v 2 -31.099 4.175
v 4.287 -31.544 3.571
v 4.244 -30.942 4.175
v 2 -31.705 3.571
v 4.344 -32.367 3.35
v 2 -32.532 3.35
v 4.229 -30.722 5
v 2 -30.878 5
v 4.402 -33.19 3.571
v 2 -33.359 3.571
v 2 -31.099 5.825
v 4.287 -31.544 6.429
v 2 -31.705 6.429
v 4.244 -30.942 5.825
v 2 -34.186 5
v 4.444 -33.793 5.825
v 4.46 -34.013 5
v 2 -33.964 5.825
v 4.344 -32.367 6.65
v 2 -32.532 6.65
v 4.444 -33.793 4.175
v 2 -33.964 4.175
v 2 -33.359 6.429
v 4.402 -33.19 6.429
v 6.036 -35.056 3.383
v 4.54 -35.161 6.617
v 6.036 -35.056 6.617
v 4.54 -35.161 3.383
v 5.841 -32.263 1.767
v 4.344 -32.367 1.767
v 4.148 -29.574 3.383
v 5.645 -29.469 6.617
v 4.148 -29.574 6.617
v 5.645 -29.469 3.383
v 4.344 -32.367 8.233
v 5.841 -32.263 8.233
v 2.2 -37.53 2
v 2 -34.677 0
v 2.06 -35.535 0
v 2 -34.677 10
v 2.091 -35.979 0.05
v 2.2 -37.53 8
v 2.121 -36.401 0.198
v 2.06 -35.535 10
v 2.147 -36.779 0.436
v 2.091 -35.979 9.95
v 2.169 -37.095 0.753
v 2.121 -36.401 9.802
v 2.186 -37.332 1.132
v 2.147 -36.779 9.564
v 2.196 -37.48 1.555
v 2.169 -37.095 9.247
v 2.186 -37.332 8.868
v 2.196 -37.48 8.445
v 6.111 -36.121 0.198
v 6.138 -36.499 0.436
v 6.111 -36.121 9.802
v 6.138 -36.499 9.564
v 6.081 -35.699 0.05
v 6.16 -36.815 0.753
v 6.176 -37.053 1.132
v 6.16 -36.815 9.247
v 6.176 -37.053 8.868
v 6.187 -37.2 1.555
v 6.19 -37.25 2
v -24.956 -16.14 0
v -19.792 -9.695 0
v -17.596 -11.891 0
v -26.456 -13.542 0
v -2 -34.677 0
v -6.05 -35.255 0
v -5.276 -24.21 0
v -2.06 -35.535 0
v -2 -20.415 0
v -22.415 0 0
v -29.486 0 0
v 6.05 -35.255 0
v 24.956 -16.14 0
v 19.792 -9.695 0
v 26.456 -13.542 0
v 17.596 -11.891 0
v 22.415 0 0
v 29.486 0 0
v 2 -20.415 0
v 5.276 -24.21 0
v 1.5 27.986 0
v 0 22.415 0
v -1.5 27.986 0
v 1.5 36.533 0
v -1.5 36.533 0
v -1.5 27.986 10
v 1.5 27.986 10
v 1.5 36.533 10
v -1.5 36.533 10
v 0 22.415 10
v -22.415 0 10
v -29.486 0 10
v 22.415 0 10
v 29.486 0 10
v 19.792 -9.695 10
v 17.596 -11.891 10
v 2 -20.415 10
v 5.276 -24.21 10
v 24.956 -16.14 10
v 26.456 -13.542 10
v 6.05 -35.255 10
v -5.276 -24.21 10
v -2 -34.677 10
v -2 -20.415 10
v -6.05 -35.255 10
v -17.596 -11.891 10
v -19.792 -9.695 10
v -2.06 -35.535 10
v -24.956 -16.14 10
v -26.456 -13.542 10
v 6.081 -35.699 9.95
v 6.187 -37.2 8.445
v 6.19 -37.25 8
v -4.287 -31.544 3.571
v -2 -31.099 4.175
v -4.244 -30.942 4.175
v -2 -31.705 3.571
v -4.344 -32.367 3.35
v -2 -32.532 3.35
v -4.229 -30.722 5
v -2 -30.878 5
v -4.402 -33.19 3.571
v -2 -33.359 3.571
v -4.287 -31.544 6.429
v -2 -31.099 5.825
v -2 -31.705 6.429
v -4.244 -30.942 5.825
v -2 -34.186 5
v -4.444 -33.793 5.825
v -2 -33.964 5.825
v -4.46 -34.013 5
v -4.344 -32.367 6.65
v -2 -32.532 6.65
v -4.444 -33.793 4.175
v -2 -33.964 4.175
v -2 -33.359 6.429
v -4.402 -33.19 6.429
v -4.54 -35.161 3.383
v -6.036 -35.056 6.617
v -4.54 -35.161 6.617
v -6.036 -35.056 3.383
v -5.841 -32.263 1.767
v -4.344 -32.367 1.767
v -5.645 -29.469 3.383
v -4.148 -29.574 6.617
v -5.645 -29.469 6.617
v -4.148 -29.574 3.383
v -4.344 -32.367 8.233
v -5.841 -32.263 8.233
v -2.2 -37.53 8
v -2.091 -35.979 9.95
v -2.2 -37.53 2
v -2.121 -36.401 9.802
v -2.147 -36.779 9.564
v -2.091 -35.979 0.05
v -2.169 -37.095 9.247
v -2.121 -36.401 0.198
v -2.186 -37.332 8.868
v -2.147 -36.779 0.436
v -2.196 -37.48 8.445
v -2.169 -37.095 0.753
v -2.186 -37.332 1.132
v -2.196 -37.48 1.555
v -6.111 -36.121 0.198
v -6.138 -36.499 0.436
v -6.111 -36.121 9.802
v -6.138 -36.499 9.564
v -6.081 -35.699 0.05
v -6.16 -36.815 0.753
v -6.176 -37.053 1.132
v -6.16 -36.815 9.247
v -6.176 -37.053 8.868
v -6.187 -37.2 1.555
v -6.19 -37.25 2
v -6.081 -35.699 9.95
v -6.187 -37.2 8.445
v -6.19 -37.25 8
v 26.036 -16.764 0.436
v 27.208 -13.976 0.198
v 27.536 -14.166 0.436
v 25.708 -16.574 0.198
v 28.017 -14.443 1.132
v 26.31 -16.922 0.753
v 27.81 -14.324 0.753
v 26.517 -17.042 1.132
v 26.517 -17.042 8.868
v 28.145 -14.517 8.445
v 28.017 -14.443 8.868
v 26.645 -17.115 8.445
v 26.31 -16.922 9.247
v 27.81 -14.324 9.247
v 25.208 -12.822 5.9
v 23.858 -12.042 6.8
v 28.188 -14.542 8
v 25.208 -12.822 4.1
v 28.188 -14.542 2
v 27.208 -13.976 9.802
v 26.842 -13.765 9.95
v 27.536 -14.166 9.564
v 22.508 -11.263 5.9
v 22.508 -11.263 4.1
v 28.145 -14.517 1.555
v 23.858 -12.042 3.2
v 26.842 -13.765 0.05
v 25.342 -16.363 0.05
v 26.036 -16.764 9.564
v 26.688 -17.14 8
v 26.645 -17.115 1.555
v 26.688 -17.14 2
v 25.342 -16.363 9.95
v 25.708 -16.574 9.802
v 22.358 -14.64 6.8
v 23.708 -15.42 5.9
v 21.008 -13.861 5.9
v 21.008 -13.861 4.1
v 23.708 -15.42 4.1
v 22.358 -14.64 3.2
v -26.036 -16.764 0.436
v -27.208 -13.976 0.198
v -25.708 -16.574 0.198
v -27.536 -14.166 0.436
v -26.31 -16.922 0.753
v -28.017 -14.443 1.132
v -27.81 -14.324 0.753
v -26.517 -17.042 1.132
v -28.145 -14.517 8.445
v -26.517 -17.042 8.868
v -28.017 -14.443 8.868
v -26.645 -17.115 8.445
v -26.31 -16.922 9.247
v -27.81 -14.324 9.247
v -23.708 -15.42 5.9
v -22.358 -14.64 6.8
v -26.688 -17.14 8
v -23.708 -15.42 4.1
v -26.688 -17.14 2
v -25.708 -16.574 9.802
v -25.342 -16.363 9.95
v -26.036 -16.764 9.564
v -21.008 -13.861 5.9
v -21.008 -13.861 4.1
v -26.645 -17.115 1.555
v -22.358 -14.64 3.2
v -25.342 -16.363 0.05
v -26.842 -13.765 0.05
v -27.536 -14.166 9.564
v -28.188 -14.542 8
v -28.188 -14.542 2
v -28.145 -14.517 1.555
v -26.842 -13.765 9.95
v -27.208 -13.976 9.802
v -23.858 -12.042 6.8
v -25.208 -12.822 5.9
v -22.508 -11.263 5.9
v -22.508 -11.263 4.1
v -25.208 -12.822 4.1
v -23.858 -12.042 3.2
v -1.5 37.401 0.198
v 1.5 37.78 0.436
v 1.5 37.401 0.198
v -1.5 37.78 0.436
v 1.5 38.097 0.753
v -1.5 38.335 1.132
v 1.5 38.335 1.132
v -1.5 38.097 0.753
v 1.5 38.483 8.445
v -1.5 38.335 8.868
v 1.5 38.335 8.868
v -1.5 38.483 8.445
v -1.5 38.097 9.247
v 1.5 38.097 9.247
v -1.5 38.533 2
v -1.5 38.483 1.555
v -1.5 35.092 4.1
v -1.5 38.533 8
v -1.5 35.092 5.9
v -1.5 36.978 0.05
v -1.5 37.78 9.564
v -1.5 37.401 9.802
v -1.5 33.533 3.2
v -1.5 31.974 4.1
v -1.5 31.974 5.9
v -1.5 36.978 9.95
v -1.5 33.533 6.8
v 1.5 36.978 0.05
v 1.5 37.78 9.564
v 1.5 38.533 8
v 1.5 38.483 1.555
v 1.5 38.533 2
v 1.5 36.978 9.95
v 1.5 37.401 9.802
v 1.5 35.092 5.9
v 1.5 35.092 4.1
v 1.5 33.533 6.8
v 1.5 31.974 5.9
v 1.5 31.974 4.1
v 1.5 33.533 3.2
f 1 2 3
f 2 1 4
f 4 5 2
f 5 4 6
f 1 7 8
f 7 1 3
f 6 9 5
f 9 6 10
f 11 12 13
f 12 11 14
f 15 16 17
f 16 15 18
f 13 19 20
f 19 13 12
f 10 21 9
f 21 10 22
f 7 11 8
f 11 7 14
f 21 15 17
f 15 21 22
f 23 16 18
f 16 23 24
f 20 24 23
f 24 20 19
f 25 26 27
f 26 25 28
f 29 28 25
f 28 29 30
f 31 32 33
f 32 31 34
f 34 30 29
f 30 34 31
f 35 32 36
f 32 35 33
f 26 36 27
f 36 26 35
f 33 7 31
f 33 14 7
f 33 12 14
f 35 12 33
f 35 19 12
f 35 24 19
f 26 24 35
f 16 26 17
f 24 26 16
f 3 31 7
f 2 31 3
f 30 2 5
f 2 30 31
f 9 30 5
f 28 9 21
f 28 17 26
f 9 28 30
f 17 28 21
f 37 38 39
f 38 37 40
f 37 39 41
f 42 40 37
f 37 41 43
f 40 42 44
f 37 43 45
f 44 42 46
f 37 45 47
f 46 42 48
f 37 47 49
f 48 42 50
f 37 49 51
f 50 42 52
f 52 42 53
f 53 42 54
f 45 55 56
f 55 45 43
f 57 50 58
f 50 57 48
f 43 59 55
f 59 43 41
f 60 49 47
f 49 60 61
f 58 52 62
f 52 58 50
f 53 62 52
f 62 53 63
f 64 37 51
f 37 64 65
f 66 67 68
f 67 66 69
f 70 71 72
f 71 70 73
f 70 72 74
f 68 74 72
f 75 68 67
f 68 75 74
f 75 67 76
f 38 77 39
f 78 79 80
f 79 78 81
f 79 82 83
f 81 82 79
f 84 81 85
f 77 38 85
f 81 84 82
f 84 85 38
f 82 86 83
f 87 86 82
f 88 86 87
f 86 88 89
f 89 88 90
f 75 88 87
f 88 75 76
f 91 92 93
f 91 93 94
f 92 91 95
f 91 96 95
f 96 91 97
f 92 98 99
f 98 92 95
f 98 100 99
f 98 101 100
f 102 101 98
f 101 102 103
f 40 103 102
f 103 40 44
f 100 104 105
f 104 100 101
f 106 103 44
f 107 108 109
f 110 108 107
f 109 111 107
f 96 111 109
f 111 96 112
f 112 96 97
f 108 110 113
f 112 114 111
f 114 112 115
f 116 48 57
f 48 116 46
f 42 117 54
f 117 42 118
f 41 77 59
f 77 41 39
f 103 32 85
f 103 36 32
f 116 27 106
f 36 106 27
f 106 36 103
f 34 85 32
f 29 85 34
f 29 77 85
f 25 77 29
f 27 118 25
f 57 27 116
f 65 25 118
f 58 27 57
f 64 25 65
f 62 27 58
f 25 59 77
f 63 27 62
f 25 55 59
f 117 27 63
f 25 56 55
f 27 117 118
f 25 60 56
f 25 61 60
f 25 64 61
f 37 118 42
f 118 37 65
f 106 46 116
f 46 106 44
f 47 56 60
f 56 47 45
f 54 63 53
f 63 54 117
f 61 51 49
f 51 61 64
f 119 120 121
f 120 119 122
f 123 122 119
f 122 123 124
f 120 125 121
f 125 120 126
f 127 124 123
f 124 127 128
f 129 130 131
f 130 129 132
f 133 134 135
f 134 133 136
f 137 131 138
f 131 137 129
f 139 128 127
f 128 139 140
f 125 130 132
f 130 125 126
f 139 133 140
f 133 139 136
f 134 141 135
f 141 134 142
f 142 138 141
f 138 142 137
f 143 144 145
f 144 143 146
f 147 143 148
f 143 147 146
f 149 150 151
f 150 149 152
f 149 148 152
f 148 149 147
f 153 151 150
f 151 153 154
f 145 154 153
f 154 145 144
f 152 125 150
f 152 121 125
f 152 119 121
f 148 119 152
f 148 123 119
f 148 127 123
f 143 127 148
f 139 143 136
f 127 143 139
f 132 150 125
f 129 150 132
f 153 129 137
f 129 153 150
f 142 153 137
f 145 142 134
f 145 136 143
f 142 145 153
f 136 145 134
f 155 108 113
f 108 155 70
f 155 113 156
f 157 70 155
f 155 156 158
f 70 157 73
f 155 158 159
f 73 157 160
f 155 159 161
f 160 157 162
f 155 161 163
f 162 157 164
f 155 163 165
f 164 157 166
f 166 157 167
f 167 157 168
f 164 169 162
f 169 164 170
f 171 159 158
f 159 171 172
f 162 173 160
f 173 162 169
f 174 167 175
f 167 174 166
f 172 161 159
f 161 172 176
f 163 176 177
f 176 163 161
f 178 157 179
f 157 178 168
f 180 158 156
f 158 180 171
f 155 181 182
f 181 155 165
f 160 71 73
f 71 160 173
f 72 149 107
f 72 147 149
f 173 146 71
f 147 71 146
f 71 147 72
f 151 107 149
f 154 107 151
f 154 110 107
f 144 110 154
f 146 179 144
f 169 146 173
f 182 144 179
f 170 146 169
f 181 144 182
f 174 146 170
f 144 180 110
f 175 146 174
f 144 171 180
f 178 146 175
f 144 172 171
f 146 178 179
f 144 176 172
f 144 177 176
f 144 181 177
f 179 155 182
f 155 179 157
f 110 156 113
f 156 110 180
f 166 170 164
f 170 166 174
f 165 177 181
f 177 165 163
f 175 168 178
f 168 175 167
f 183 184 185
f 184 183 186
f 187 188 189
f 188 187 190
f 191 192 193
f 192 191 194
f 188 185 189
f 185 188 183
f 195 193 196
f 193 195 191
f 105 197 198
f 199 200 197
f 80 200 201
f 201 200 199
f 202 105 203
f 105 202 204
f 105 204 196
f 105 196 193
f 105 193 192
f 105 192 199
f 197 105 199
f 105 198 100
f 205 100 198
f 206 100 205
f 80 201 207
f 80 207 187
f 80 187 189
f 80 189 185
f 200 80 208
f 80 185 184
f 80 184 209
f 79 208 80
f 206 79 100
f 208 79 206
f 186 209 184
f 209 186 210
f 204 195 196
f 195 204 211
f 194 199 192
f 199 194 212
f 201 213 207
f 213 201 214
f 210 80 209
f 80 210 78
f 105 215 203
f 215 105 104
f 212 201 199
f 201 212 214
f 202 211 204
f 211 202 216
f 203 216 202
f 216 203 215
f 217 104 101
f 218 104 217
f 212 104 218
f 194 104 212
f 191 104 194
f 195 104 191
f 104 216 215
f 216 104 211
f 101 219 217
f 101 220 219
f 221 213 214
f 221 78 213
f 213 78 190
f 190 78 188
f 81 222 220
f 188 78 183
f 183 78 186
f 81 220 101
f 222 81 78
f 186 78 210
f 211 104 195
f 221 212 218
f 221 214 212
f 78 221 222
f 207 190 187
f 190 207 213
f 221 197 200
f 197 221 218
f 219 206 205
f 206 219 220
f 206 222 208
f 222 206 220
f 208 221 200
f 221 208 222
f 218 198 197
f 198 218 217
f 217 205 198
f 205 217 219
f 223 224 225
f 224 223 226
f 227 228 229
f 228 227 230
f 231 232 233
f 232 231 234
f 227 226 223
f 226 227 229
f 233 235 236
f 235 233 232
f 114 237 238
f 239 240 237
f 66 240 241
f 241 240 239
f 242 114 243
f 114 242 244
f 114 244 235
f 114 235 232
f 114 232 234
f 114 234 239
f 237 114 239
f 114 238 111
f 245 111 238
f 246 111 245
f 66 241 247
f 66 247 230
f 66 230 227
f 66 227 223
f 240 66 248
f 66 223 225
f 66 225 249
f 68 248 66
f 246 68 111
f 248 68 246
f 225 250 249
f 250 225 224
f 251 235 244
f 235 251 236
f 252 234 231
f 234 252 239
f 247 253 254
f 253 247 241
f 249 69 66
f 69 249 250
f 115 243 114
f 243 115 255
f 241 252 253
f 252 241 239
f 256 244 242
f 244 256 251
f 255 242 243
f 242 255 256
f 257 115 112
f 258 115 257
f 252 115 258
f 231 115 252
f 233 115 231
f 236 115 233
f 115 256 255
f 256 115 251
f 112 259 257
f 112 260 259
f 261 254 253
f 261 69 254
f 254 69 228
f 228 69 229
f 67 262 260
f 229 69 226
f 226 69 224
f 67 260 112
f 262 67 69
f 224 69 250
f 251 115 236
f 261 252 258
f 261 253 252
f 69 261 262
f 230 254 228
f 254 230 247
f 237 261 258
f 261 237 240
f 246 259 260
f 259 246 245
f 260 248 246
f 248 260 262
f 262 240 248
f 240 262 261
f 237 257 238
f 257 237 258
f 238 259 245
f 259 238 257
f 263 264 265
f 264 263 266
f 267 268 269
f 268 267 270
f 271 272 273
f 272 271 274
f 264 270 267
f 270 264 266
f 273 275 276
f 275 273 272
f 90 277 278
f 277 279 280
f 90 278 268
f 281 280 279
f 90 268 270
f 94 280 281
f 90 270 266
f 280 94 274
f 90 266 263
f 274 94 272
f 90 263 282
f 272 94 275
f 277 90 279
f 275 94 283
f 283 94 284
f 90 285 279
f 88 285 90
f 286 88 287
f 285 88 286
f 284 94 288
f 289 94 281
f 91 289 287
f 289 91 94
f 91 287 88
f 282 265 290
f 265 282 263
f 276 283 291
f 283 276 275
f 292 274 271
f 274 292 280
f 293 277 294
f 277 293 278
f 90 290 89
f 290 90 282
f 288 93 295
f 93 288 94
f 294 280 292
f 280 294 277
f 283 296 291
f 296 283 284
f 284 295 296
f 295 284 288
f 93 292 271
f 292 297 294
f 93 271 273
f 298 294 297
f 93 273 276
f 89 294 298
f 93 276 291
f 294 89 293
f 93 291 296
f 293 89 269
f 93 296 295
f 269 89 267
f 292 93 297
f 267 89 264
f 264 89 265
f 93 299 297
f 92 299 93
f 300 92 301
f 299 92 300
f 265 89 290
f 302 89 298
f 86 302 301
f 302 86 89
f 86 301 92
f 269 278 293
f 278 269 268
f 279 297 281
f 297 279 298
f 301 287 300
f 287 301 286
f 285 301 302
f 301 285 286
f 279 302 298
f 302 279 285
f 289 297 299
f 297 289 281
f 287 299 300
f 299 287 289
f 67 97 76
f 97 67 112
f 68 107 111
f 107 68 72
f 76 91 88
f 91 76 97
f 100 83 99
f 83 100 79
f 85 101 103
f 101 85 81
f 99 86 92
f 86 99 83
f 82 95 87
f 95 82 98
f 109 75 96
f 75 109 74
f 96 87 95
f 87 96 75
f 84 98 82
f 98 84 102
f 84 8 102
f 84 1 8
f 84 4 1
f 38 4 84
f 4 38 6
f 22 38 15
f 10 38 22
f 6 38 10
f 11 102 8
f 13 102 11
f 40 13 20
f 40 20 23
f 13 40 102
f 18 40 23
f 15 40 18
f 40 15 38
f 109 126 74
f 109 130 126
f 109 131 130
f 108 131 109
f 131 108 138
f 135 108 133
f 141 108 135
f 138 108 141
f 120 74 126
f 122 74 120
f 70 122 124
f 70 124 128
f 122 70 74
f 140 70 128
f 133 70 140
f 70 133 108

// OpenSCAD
// file: lib/sweep.scad
// sweep.scad
//
// This code is copied from
// https://github.com/openscad/list-comprehension-demos
// and
// https://github.com/openscad/scad-utils
// to make hangprinter repo self-contained
// It was included in order to make the worm drive parametric
// In future OpenSCAD (or other script CAD programs)
// worm drives should be will be more easily constructed without
// this user space defined sweep operation.
// See OpenSCAD discussion at:
// https://github.com/openscad/openscad/issues/114

// Look into files
// lists.scad
// X transformations.scad
// linalg.scad
// se3.scad
// so3.scad


// Include modules and fcts:

/// linalg.scad
function vec3(p) = len(p) < 3 ? concat(p,0) : p;
function vec4(p) = let (v3=vec3(p)) len(v3) < 4 ? concat(v3,1) : v3;
function take3(v) = [v[0],v[1],v[2]];
function tail3(v) = [v[3],v[4],v[5]];
function construct_Rt(R,t) = [concat(R[0],t[0]),concat(R[1],t[1]),concat(R[2],t[2]),[0,0,0,1]];

/// so3.scad

function se3_exp_2(t,w) = se3_exp_2_0(t,w,w*w);
function se3_exp_2_0(t,w,theta_sq) =
se3_exp_23(
	so3_exp_2(theta_sq),
	C = (1.0 - theta_sq/20) / 6,
	t=t,w=w);

// Taylor series expansions close to 0
function so3_exp_1(theta_sq) = [
	1 - 1/6*theta_sq,
	0.5
];

function rodrigues_so3_exp(w, A, B) = [
  [1.0 - B*(w[1]*w[1] + w[2]*w[2]), B*(w[0]*w[1]) - A*w[2],          B*(w[0]*w[2]) + A*w[1]],
  [B*(w[0]*w[1]) + A*w[2],          1.0 - B*(w[0]*w[0] + w[2]*w[2]), B*(w[1]*w[2]) - A*w[0]],
  [B*(w[0]*w[2]) - A*w[1],          B*(w[1]*w[2]) + A*w[0],          1.0 - B*(w[0]*w[0] + w[1]*w[1])]
];

function so3_exp_3_0(theta_deg, inv_theta) = [
	sin(theta_deg) * inv_theta,
	(1 - cos(theta_deg)) * (inv_theta * inv_theta)
];

/// se3.scad
function combine_se3_exp(w, ABt) = construct_Rt(rodrigues_so3_exp(w, ABt[0], ABt[1]), ABt[2]);
function se3_exp_1(t,w) = concat(
	so3_exp_1(w*w),
	[t + 0.5 * cross(w,t)]
);

function se3_exp_3(t,w) = se3_exp_3_0(t,w,sqrt(w*w)*180/PI,1/sqrt(w*w));

function se3_exp_23(AB,C,t,w) =
[AB[0], AB[1], t + AB[1] * cross(w,t) + C * cross(w,cross(w,t)) ];

function se3_exp_3_0(t,w,theta_deg,inv_theta) =
se3_exp_23(
	so3_exp_3_0(theta_deg = theta_deg, inv_theta = inv_theta),
	C = (1 - sin(theta_deg) * inv_theta) * (inv_theta * inv_theta),
t=t,w=w);

function se3_exp(mu) = se3_exp_0(t=take3(mu),w=tail3(mu)/180*PI);

function se3_exp_0(t,w) =
combine_se3_exp(w,
// Evaluate by Taylor expansion when near 0
	w*w < 1e-8
	? se3_exp_1(t,w)
	: w*w < 1e-6
	  ? se3_exp_2(t,w)
	  : se3_exp_3(t,w)
);


/// lists.scad
/*!
  Flattens a list one level:

  flatten([[0,1],[2,3]]) => [0,1,2,3]
*/
function flatten(list) = [ for (i = list, v = i) v ];
/*!
  Extracts a subarray from index begin (inclusive) to end (exclusive)

  subarray([1,2,3,4], 1, 2) => [2,3]
*/
function subarray(list,begin=0,end=-1) = [
    let(end = end < 0 ? len(list) : end)
      for (i = [begin : 1 : end-1])
        list[i]
];

/// transformations.scad
//********* Create modifying matrices ***************//
/*!
  Creates a rotation matrix

  xyz = euler angles = rz * ry * rx
  axis = rotation_axis * rotation_angle
*/
function rotation(xyz=undef, axis=undef) =
	xyz != undef && axis != undef ? undef :
	xyz == undef  ? se3_exp([0,0,0,axis[0],axis[1],axis[2]]) :
	len(xyz) == undef ? rotation(axis=[0,0,xyz]) :
	(len(xyz) >= 3 ? rotation(axis=[0,0,xyz[2]]) : identity4()) *
	(len(xyz) >= 2 ? rotation(axis=[0,xyz[1],0]) : identity4()) *
(len(xyz) >= 1 ? rotation(axis=[xyz[0],0,0]) : identity4());

/*!
  Creates a scaling matrix
*/
function scaling(v) = [
	[v[0],0,0,0],
	[0,v[1],0,0],
	[0,0,v[2],0],
	[0,0,0,1],
];

/*!
  Creates a translation matrix
*/
function translation(v) = [
	[1,0,0,v[0]],
	[0,1,0,v[1]],
	[0,0,1,v[2]],
	[0,0,0,1],
];


function project(x) = subarray(x,end=len(x)-1) / x[len(x)-1];

function transform(m, list) = [for (p=list) project(m * vec4(p))];

function to_3d(list) = [ for(v = list) vec3(v) ];

module sweep(shape, path_transforms, closed=false) {

    pathlen = len(path_transforms);
    segments = pathlen + (closed ? 0 : -1);
    shape3d = to_3d(shape);

    function sweep_points() =
      flatten([for (i=[0:pathlen-1])
        transform(path_transforms[i], shape3d)]);

    function loop_faces() = [let (facets=len(shape3d))
        for(s=[0:segments-1], i=[0:facets-1])
          [(s%pathlen) * facets + i,
           (s%pathlen) * facets + (i + 1) % facets,
           ((s + 1) % pathlen) * facets + (i + 1) % facets,
           ((s + 1) % pathlen) * facets + i]];

    bottom_cap = closed ? [] : [[for (i=[len(shape3d)-1:-1:0]) i]];
    top_cap = closed ? [] : [
      [for (i=[0:len(shape3d)-1])
        i+len(shape3d)*(pathlen-1)]];
    polyhedron(points = sweep_points(),
               faces  = concat(loop_faces(),
                               bottom_cap,
                               top_cap),
               convexity=5);
}
// file: clay_extruder.scad
include <lib/parameters.scad>
use <lib/util.scad>

clay_extruder();
module clay_extruder(){
  lift_tube = 60;
  tube_height = 325;
  tube_inner_d = Clay_extruder_tube_inner_d;
  tube_outer_d = Clay_extruder_tube_outer_d;
  translate([0,0,lift_tube])
    color([0.9,0.9,0.9], 0.4)
      difference(){
        cylinder(d = tube_outer_d, h=tube_height, $fn=10*4);
        translate([0,0,-1])
          cylinder(d = tube_inner_d, h= tube_height+2, $fn=10*4);
      }

  color([0.15,0.15,0.15])
    difference(){
      translate([0,0,lift_tube-36])
        cylinder(d=70, h=36);
      end_r = 35.7/2;
      circle_r = 47;
      translate([0,0,lift_tube-36])
        rotate_extrude()
          translate([circle_r+end_r,0])
            circle(r=circle_r);
    }

  color([0.93,0.1,0.1])
    cylinder(d1 = 6, d2 = 19, h = 24);

  shim_height = 17;
  color([0.15,0.15,0.15])
    translate([0,0,tube_height + lift_tube])
      cylinder(d = tube_outer_d + 3, h = shim_height);

  color([0.5,0.5,0.5])
    translate([-80/2, -80/2, lift_tube + tube_height + shim_height])
      cube([80, 97, Nema23_cube_width]);
  translate([-Nema23_cube_height-80/2, 97-80/2-Nema23_cube_width/2, lift_tube + tube_height + shim_height + Nema23_cube_width/2])
    rotate([0,90,0])
      Nema23();

  topshim_height = 10;
  color([0.6,0.6,0.6])
    translate([0,0,lift_tube + tube_height + shim_height + Nema23_cube_width])
      cylinder(d=62, h=topshim_height);
  w = Clay_extruder_top_square_width;
  color([0.6,0.6,0.6])
    rotate([0,0,45])
      translate([-w/2, -w/2, lift_tube + tube_height + shim_height + Nema23_cube_width])
        cube([w, w, 300]);

}
// file: lib/parameters.scad
// Parameters shared between modules
Base_th = 2;
Beam_width = 15;
Wiggle = 0.25;
Fat_beam_width = Beam_width + Wiggle;
Beam_length = 400;
Wall_th = 2.5;
Min_beam_width = 12.5;
Max_beam_width = 17.5;
Zip_th = 2;
Zip_h = Zip_th + Max_beam_width - Min_beam_width;
Zip_w = 5.0;
Nema17_cube_width          = 42.43;
Nema17_screw_hole_width    = 43.74; // Opposite corner screws
Nema17_ring_diameter       = 22;
Nema17_cube_height         = 39.36;
Nema17_shaft_height        = 63.65;
Nema17_ring_height         = 2;
Nema17_shaft_radius        = 5/2;

Nema23_cube_width          = 56.4;
Nema23_cube_height         = 54.5;
Nema23_shaft_height        = 100;
Nema23_screw_hole_width    = 66.31; // Opposite corner screws
b608_outer_dia = 22.2;
b608_width = 7.05;
b608_bore_r = 4;
b608_vgroove_big_r = b608_outer_dia/2 + 2.5;
b608_vgroove_small_r = b608_outer_dia/2 + 0.5;
b608_ugroove_big_r = b608_vgroove_big_r;
b608_ugroove_small_r = b608_vgroove_small_r;
Gap_between_sandwich_and_plate = 1.5 + Base_th; // 1.5 mm for wiggle
Motor_bracket_flerp_r = 6;
Motor_bracket_flerp = 14;
Motor_bracket_cw = Nema17_cube_width + 6;
Motor_bracket_att_ang = 50;
Mounting_screw_d = 3.5;
Mounting_screw_head_d = 14;
Spool_outer_wall_th = 4;

// Corner clamp parameters
Cc_l1 = (Fat_beam_width+2*Wall_th)*2*sqrt(3);
Cc_rad_b = 4;
Cc_action_point_from_mid = Cc_l1/sqrt(3)-2*Cc_rad_b-7;
Cc_plastic_length = sqrt(Cc_action_point_from_mid*Cc_action_point_from_mid
                       - (Cc_action_point_from_mid/2)*(Cc_action_point_from_mid/2));
Eyelet_extra_dist = 0.75;
Eyelet_diameter = 4.30;
Move_d_bearings_inwards = -2;

// The distance between the two action points on the mover
Sidelength = Beam_length + 2*Cc_plastic_length;

/////// Gear parameters ////////////
Circular_pitch = 262;
Motor_teeth = 10;
Gear_height = 21.4-3;
Motor_pitch                      = (Motor_teeth*Circular_pitch/360);
Motor_pitch_diametrial           = Motor_teeth/(2*Motor_pitch);
Motor_outer_radius               = Motor_pitch + 1/Motor_pitch_diametrial;
Spool_teeth = 100;
Spool_r = 75;
Spool_height = 8;
Spool_pitch                      = (Spool_teeth*Circular_pitch/360);
Spool_pitch_diametrial           = Spool_teeth/(2*Spool_pitch);
Spool_outer_radius               = Spool_pitch + 1/Spool_pitch_diametrial;
Sep_disc_radius = (161.83+1)/2; // Made to match 255 teeth gt2 pulley + 1
Motor_bracket_depth = Gear_height+1+7+Nema17_ring_height+1+Gap_between_sandwich_and_plate;
Spool_core_flerp0 = 16+3;

/////// Lineroller parameters ////////////
b623_width  = 4;
b623_bore_r = 3/2;
b623_big_ugroove_big_r = (12+3)/2;
b623_big_ugroove_small_r = (10+3)/2;
b623_outer_dia = 10;
b623_ugroove_room_to_grow_r = 1.1;
b608_ugroove_room_to_grow_r = 1.1;
b623_flange_dia = 11.5;
b623_flange_room_to_grow_r = 0.5;

Depth_of_roller_base = 18;
Roller_flerp = 6;
Roller_l = 42;
Roller_fl = (Roller_l - Depth_of_roller_base)/2;

Line_roller_wall_th = 5;

Line_roller_ABC_winch_h =  Gap_between_sandwich_and_plate
                           + Sep_disc_radius
                           - Spool_r
                           + Depth_of_roller_base/2
                           + b608_vgroove_small_r;

Ptfe_r = 2.1;
Roller_base_r = 8;
Screw_h = 2;
Screw_head_h = 2;
M3_screw_head_d = 5.8;
Spool_center_bearing_wall_th = 5;
Corner_clamp_bearings_center_to_center = max(15, (b623_big_ugroove_big_r + b623_ugroove_room_to_grow_r)*2 + 5);

//// Lineroller anchor parameters /////

Front_bearing_x = -5 - 5;
Move_tower = -12.2;
Lower_bearing_z = 13;
Higher_bearing_z = Lower_bearing_z + Corner_clamp_bearings_center_to_center;

//// Cable Clamp parameters /////
Bit_width = 12;
Cable_r=2.5;

// Belt drive parameters
GT2_belt_width = 6.5;
GT2_gear_height = GT2_belt_width + 2;
GT2_motor_gear_height = 16;
GT2_motor_gear_outer_dia = 16;
GT2_spool_gear_outer_dia = 161.82; // Echoed from GT2_spool_gear.scad
GT2_spool_gear_teeth = 255;
GT2_motor_gear_teeth = 20;
Torx_depth = GT2_gear_height/2;
Belt_roller_h = 56;
Belt_thickness = 1.4;

Belt_roller_space_between_walls = 2*b623_width + 0.8;
Belt_roller_wall_th = (Depth_of_roller_base - Belt_roller_space_between_walls)/2+2;
Belt_roller_top_adj_screw_x = Depth_of_roller_base/2-3.7;
Belt_roller_top_adj_screw_y = Belt_roller_space_between_walls/2+2;
Belt_roller_containing_cube_ywidth = Belt_roller_space_between_walls+8.5;
Belt_roller_containing_cube_xwidth = 14;
Belt_roller_insert_h = 18;

Sandwich_ABC_width = 2*(1+Spool_height) + GT2_gear_height;
Sandwich_D_width = 4*(1+Spool_height) + GT2_gear_height;
Spool_core_halve_width = 14.3;
Spool_core_impression_in_spool_cover = 0;
Spool_cover_bottom_th = 1.5;
Spool_cover_shoulder = 2;
Spool_core_cover_adj = Spool_cover_shoulder+Spool_cover_bottom_th-Spool_core_impression_in_spool_cover;
Spool_core_tot_length = 136.458;
Spool_cover_outer_r = Sep_disc_radius + 2;
Gap_between_sep_disc_and_spool_cover = 0.55;

Smooth_rod_length_ABC = Sandwich_ABC_width + 2*(Spool_core_halve_width-Spool_core_impression_in_spool_cover + Spool_cover_bottom_th + Spool_cover_shoulder);
Smooth_rod_length_D = Sandwich_D_width + 2*(Spool_core_halve_width-Spool_core_impression_in_spool_cover + Spool_cover_bottom_th + Spool_cover_shoulder);
echo("Smooth_rod_length_ABC", Smooth_rod_length_ABC);
echo("Smooth_rod_length_D", Smooth_rod_length_D);

Spool_cover_tot_height = Spool_cover_bottom_th+Spool_cover_shoulder+1+Spool_height;
Spool_cover_D_left_tot_height = Spool_cover_shoulder+Spool_cover_bottom_th+1+Spool_height+1+Spool_height;

spd = Spool_height+GT2_gear_height;
// Horizontal_deflector_cube_y_size must be exact this number
// because we want to deflect AB-lines
// 60 degrees on the ceiling unit, and we want to put two
// deflectors in a row and get a distance between bearings
// that maintain the distance d when deflecting 60 degrees
Horizontal_deflector_cube_y_size = (2/sqrt(3))*spd;

Belt_roller_bearing_xpos = Sep_disc_radius + b623_outer_dia/2+Belt_thickness;


// Top plate parameters needed for layout slicer
Yshift_top_plate = -297.8;

Pen_holder_w = 55;
Pen_holder_rail_w = 36;
Pen_holder_bottom_th = 7;

u_width = 7;
Stick_extra = 5;
Stick_length = b623_big_ugroove_big_r*2 + 7*2 + 1*2 + Stick_extra;
Stick_d = 12.5;

Clay_extruder_tube_inner_d = 70;
Clay_extruder_tube_outer_d = Clay_extruder_tube_inner_d + 2*3.3;
Clay_extruder_top_square_width = 31.7;
// main file
include <lib/parameters.scad>
use <lib/util.scad>
use <clay_extruder.scad>

clay_extruder_holder();
module clay_extruder_holder(){
  difference(){
    union(){
      cylinder(d = Clay_extruder_tube_outer_d + 2*5, h=10, $fn=15*4);
      for(k=[0,1]) mirror([k,0,0])
        translate([4/2+0.2,-Clay_extruder_tube_outer_d/2-16,10])
          rotate([-atan(4/Clay_extruder_tube_outer_d),90,0])
            difference(){
              rounded_cube2([10,18,3],2, $fn=7*4);
              translate([10/2,5,-1]){
                M3_screw();
                translate([0,0,3])
                  nut(h=3);
              }
            }

      for(ang=[0,120,240]) rotate([0,0,ang+60])
        translate([0,-Clay_extruder_tube_outer_d/2-13,10])
          rotate([0,90,0])
            translate([0,0,-3/2])
              difference(){
                rounded_cube2([10,13,3],2, $fn=7*4);
                translate([10/2,5,-1])
                  cylinder(d=3.6, h=20);
              }
    }
    translate([0,0,-1])
      cylinder(d = Clay_extruder_tube_outer_d, h=12, $fn=15*4);
    translate([-4/2, -Clay_extruder_tube_outer_d,-1])
      cube([4, Clay_extruder_tube_outer_d, 12]);
  }
}

!clay_extruder_top_holder();
module clay_extruder_top_holder(){
  difference(){
    w = Clay_extruder_top_square_width;
    union(){
      rotate([0,0,45])
        translate([-(w+2*5)/2,-(w+2*5)/2,0])
          cube([w+2*5,w+2*5,10]);
      for(k=[0,1]) mirror([k,0,0])
        translate([4/2+0.2,-1.8*Clay_extruder_top_square_width/2-9,10])
          rotate([-atan(4/(1.8*Clay_extruder_top_square_width)),90,0])
            difference(){
              rounded_cube2([10,18,4],2, $fn=7*4);
              translate([10/2,5,-1]){
                M3_screw();
                translate([0,0,3.5])
                  nut(h=3);
              }
            }

      for(ang=[0,240]) rotate([0,0,ang+60])
        translate([0,-Clay_extruder_tube_outer_d/4.1-13,10])
          rotate([0,90,0])
            translate([0,0,-3/2])
              difference(){
                rounded_cube2([10,13,3],2, $fn=7*4);
                translate([10/2,5,-1])
                  cylinder(d=3.6, h=20);
              }
      rotate([0,0,120+60])
        translate([0,-Clay_extruder_tube_outer_d/3-13,10])
          rotate([0,90,0])
            translate([0,0,-3/2])
              difference(){
                rounded_cube2([10,13,3],2, $fn=7*4);
                translate([10/2,5,-1])
                  cylinder(d=3.6, h=20);
              }
    }
    rotate([0,0,45])
      translate([-w/2,-w/2,-1])
        cube([w,w,12]);
    translate([-4/2, -Clay_extruder_tube_outer_d,-1])
      cube([4, Clay_extruder_tube_outer_d, 12]);
  }
}
